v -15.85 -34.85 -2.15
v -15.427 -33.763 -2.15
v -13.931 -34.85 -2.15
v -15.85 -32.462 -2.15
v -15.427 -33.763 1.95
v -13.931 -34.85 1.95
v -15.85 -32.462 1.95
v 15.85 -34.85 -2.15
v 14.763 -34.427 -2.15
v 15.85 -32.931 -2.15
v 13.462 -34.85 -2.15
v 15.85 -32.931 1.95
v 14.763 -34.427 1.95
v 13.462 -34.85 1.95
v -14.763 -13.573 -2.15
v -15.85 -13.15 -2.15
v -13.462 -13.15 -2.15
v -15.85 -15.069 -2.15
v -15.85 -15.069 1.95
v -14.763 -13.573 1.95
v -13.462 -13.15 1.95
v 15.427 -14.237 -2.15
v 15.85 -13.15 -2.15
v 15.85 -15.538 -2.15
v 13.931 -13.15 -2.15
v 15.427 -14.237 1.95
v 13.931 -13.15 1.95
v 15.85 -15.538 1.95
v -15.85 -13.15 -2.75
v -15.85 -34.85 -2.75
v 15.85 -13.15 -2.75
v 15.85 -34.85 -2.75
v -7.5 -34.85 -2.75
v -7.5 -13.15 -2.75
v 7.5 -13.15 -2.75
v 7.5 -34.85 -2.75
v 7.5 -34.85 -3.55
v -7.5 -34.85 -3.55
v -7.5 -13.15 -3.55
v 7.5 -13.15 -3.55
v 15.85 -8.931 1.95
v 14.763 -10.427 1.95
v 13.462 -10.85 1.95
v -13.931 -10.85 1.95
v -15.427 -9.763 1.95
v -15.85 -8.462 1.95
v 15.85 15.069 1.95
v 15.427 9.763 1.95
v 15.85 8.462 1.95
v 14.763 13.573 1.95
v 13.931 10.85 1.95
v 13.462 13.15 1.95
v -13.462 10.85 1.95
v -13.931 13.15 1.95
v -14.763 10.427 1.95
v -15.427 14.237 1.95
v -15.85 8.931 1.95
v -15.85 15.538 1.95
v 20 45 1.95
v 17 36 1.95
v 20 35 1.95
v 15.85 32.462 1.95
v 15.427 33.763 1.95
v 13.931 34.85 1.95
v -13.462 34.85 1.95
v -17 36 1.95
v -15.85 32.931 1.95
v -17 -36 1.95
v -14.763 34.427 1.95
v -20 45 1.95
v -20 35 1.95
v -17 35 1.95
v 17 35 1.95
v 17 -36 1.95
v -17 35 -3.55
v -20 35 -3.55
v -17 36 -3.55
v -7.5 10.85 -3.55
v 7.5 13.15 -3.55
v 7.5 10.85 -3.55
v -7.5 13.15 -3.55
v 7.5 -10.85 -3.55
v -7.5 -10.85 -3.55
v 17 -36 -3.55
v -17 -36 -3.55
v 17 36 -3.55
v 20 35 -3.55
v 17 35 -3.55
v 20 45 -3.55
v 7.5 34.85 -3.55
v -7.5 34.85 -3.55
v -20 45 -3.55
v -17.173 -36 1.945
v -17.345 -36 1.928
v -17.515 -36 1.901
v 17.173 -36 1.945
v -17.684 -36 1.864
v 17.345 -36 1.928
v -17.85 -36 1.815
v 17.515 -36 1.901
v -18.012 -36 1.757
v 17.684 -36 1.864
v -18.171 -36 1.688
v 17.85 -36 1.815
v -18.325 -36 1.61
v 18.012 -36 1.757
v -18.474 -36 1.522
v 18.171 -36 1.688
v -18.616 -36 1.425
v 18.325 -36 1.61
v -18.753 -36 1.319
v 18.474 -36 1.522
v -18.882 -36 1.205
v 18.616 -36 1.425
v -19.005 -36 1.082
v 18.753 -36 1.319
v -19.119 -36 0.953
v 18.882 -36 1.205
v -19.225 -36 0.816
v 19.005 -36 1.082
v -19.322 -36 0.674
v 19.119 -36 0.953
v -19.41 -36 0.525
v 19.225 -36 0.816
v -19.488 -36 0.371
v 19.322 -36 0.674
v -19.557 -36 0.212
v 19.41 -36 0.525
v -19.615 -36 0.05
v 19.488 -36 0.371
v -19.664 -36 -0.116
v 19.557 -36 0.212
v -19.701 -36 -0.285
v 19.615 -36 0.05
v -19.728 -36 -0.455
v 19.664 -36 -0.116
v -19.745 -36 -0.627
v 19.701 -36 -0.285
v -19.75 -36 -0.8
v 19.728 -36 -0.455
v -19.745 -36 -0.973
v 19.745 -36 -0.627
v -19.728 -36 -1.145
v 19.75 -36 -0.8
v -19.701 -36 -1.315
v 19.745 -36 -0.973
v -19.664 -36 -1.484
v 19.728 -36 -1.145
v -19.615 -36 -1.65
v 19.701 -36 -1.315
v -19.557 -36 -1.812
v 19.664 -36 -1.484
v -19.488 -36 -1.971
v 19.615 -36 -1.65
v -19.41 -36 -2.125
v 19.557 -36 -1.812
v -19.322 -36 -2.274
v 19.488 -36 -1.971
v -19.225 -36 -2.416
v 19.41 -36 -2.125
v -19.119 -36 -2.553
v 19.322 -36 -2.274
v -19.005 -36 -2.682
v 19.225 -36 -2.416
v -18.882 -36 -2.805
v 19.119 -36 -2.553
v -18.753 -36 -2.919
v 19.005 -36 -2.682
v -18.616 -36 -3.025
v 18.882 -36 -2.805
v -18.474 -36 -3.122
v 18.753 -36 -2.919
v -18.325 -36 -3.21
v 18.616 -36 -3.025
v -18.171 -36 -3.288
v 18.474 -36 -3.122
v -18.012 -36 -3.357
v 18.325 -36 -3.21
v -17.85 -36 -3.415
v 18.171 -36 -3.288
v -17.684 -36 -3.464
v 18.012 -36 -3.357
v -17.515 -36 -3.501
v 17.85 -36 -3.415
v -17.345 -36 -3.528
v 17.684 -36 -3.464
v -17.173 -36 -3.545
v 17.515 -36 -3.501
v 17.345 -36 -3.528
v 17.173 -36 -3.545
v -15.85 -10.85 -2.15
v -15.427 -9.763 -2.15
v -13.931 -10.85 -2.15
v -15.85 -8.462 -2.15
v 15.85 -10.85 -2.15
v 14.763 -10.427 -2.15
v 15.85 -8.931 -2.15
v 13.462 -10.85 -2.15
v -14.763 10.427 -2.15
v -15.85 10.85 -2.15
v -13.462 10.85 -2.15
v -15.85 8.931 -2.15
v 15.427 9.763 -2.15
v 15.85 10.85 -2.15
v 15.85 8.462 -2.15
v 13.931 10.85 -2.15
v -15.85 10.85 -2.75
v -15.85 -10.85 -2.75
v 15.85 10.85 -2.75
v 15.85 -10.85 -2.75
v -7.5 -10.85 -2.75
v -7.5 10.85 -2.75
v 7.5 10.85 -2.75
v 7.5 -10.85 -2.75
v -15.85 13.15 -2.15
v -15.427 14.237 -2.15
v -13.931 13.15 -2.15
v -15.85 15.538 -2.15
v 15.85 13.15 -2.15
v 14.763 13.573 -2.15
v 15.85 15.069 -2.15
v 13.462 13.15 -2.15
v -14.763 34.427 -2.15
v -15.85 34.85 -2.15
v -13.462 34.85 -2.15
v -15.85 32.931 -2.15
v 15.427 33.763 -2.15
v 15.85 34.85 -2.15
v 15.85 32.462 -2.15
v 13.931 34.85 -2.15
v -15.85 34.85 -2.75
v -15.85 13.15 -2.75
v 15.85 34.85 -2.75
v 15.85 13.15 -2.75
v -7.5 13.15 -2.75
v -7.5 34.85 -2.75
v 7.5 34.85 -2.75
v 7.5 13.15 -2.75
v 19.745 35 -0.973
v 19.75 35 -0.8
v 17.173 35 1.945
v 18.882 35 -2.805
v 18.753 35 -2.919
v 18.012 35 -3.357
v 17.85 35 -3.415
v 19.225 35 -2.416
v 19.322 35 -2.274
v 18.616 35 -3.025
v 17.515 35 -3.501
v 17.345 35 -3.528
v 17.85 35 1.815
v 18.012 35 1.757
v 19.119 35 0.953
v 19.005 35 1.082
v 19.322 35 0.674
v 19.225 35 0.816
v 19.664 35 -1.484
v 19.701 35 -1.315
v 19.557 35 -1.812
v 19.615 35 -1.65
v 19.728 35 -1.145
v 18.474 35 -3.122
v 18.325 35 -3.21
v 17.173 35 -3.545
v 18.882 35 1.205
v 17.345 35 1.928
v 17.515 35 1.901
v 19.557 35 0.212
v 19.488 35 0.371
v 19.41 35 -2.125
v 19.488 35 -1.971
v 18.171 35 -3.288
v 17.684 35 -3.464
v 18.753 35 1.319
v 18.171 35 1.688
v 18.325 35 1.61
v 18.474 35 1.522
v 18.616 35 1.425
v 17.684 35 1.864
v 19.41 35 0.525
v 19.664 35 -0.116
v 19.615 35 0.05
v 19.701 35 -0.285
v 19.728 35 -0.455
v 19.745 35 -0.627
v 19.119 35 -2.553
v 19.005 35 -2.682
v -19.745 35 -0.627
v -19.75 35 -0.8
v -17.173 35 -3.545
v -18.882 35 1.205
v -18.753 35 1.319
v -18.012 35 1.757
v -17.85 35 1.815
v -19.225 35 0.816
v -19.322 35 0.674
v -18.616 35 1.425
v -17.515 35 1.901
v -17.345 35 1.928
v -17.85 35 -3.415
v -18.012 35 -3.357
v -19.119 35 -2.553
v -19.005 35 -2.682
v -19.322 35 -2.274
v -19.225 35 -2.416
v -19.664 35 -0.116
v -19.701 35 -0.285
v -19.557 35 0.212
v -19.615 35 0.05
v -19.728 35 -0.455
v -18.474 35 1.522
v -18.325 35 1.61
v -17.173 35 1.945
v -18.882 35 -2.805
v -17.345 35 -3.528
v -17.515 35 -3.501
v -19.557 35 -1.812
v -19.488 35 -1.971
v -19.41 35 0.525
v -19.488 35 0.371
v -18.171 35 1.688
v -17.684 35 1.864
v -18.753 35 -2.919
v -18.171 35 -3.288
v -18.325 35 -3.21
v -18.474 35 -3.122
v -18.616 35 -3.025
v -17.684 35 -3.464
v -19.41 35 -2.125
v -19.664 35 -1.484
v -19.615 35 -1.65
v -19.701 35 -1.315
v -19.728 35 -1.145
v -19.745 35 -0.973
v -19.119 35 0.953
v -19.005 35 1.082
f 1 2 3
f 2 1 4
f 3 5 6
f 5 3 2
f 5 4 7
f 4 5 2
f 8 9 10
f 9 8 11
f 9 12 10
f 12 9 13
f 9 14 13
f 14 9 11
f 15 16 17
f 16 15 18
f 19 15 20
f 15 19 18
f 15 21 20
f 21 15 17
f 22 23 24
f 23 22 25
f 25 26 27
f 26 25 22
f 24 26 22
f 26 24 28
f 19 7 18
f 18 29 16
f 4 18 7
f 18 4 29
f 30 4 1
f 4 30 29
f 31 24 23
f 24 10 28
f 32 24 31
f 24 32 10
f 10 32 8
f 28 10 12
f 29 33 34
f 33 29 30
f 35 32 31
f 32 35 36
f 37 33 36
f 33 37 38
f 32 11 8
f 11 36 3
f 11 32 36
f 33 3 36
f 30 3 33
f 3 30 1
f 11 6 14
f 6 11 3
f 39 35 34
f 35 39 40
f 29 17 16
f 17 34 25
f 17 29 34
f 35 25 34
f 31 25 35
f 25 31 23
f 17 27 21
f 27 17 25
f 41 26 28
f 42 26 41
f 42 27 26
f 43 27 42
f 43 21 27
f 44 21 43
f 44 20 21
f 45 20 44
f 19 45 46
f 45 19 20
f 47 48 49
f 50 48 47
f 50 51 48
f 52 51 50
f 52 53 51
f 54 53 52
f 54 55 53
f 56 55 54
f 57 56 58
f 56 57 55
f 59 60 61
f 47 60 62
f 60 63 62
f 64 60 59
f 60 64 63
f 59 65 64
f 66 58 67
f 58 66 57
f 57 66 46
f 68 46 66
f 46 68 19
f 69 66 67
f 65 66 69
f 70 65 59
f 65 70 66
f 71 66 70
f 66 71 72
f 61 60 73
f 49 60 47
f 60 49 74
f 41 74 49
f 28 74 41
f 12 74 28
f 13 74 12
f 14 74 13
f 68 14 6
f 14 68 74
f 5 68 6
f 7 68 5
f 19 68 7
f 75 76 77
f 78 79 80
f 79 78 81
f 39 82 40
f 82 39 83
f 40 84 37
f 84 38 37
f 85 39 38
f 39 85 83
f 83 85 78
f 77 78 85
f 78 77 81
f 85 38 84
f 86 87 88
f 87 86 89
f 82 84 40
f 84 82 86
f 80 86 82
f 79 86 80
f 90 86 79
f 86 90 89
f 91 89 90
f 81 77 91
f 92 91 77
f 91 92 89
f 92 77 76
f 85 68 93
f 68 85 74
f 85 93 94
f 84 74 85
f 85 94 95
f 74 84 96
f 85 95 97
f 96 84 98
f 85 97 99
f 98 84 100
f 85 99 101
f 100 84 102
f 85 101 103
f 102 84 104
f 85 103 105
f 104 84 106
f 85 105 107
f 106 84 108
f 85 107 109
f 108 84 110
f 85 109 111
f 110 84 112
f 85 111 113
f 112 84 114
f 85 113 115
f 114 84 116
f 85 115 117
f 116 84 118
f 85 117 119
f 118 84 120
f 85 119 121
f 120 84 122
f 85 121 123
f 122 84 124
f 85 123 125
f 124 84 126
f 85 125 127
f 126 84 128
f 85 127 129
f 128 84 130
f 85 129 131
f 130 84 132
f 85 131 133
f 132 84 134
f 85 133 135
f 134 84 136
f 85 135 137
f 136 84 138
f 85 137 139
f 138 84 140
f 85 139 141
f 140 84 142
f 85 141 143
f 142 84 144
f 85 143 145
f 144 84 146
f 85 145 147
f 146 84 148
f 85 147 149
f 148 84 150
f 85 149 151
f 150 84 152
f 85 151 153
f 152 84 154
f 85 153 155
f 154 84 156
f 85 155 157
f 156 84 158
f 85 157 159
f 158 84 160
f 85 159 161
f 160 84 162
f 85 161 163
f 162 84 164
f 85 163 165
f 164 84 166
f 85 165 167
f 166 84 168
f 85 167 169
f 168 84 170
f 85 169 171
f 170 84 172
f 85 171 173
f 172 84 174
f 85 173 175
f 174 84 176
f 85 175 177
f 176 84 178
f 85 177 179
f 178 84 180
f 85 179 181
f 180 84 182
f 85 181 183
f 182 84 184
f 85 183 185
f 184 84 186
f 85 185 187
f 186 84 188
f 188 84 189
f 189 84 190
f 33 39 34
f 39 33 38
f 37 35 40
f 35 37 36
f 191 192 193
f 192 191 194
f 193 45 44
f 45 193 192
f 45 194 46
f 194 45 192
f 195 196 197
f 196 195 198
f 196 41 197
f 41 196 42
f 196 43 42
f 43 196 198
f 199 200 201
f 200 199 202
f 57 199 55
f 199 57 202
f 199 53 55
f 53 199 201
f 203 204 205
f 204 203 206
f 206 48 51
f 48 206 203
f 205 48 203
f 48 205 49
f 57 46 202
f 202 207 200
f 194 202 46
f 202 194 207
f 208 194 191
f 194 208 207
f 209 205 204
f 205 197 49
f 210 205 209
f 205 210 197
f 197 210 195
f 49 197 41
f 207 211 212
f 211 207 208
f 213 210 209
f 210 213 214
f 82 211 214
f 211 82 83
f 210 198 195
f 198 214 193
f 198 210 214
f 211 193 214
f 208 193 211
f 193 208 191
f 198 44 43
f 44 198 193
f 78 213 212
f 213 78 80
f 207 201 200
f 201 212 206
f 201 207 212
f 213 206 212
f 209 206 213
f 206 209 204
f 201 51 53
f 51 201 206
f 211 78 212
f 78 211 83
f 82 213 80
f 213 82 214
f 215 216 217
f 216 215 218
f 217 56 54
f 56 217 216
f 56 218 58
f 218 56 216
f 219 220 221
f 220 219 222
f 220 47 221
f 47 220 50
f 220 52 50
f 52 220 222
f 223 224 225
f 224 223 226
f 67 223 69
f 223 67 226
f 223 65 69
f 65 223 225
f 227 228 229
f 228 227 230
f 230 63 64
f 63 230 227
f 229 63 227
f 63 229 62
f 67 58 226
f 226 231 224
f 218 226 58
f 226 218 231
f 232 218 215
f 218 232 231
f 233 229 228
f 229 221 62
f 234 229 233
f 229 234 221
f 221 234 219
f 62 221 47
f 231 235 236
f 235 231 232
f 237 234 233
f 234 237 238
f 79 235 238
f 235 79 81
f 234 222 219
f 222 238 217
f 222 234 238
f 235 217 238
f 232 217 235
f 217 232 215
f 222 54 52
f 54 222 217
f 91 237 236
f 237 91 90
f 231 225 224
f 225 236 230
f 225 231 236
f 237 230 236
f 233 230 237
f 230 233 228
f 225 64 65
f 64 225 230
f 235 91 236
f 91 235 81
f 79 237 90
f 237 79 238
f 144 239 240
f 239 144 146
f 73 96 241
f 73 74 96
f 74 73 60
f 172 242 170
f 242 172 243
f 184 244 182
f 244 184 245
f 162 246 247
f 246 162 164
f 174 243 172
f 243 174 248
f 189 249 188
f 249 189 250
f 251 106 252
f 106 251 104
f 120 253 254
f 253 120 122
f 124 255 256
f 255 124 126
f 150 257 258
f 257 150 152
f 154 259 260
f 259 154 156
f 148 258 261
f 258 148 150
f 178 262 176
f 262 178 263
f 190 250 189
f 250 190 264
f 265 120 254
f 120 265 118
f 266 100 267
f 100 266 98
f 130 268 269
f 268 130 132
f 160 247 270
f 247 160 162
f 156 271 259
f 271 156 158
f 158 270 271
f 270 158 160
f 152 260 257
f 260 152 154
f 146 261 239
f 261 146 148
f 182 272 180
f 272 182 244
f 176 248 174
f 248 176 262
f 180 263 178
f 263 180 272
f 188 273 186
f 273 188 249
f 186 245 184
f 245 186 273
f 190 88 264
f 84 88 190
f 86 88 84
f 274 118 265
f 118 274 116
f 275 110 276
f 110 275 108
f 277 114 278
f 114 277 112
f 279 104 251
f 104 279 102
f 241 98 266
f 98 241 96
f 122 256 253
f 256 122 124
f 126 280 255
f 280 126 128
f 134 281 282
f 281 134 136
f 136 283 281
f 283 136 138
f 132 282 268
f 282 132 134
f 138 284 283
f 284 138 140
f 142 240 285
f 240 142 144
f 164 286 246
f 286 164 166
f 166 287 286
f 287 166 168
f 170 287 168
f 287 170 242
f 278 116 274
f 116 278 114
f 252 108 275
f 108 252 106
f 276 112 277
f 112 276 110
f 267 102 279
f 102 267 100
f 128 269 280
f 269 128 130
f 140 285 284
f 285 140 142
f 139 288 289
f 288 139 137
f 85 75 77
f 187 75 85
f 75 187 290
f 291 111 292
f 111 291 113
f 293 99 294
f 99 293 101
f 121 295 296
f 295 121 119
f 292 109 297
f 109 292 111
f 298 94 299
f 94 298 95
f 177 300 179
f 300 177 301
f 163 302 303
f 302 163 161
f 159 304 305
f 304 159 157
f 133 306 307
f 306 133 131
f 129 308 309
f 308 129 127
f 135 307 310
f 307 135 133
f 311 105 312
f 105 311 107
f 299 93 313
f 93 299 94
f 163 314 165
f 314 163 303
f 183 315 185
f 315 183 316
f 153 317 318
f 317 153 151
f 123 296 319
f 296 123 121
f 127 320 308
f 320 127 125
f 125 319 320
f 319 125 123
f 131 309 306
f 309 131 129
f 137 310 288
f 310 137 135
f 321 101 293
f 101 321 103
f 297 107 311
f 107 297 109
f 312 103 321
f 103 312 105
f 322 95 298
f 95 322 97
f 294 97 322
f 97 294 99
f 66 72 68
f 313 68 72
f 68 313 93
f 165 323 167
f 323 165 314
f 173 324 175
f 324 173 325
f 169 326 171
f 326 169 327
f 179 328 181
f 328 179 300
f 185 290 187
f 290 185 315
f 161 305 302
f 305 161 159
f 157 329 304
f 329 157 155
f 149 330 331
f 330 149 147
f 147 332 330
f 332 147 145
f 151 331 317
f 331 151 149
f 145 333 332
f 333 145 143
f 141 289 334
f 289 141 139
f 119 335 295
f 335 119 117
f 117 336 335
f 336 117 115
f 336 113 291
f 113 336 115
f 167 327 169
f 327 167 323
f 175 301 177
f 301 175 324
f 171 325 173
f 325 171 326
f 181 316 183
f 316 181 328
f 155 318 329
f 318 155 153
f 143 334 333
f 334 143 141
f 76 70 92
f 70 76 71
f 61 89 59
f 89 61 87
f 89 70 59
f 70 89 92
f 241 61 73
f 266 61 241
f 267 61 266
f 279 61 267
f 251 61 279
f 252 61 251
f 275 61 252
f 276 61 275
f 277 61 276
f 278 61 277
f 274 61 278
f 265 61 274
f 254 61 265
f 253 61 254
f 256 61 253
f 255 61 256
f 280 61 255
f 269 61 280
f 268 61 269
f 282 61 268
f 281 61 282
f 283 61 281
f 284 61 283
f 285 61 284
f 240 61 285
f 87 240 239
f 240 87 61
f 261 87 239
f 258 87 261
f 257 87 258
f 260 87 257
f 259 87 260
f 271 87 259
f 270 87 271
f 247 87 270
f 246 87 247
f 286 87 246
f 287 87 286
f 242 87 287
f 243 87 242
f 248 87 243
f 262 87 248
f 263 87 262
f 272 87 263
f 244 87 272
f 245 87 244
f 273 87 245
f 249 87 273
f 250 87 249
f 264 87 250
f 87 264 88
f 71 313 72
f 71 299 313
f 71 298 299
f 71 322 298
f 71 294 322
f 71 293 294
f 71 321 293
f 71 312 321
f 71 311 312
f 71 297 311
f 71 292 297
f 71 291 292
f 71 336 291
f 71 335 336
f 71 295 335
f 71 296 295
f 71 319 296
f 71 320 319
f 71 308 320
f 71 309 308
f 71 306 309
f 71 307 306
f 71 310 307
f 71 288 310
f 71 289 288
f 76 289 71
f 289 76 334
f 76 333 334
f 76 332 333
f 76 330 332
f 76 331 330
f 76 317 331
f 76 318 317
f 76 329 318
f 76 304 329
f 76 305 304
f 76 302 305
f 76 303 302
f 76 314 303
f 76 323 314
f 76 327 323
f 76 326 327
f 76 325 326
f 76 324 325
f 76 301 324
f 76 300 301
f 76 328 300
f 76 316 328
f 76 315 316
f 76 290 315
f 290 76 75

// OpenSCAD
module fillet(r, h) {
    translate([r / 2, r / 2, 0])
        difference() {
            cube([r + 0.01, r + 0.01, h], center = true);
            translate([r/2, r/2, 0])
                cylinder(r = r, h = h + 1, center = true);
        }
}

module clip(x,y,z){
   translate([x,y,z]) difference(){
        difference(){
            translate([0,0,-0.8])cube([34,24,5.5],true);
            difference(){
                cube([31.7,21.7,5.5],true);
                union(){
                    translate([-16,-11,0])fillet(3,4.3);
                    translate([16,-11,0])rotate([0,0,90])fillet(3,4.3);
                    translate([-16,11,0])rotate([0,0,270])fillet(3,4.3);
                    translate([16,11,0])rotate([0,0,180])fillet(3,4.3);
                }
            }
        }
        cube([15,21.7,20], true);
    }
}

module rail(x,y,z,a){
    translate([x,y,z-0.8])
    rotate([90,a,0])
    difference(){
        cylinder(h=72, d = 5.5, center = true, $fn=100);
       translate([0,-10,-40]) cube([20,20,80]);
    }
}

clip(0,-24,0);
clip(0,0,0);
clip(0,24,0);

rail(17,0,0,180);
rail(-17,0,0,0);

translate([0,40,-0.8])cube([40,10,5.5], true);
